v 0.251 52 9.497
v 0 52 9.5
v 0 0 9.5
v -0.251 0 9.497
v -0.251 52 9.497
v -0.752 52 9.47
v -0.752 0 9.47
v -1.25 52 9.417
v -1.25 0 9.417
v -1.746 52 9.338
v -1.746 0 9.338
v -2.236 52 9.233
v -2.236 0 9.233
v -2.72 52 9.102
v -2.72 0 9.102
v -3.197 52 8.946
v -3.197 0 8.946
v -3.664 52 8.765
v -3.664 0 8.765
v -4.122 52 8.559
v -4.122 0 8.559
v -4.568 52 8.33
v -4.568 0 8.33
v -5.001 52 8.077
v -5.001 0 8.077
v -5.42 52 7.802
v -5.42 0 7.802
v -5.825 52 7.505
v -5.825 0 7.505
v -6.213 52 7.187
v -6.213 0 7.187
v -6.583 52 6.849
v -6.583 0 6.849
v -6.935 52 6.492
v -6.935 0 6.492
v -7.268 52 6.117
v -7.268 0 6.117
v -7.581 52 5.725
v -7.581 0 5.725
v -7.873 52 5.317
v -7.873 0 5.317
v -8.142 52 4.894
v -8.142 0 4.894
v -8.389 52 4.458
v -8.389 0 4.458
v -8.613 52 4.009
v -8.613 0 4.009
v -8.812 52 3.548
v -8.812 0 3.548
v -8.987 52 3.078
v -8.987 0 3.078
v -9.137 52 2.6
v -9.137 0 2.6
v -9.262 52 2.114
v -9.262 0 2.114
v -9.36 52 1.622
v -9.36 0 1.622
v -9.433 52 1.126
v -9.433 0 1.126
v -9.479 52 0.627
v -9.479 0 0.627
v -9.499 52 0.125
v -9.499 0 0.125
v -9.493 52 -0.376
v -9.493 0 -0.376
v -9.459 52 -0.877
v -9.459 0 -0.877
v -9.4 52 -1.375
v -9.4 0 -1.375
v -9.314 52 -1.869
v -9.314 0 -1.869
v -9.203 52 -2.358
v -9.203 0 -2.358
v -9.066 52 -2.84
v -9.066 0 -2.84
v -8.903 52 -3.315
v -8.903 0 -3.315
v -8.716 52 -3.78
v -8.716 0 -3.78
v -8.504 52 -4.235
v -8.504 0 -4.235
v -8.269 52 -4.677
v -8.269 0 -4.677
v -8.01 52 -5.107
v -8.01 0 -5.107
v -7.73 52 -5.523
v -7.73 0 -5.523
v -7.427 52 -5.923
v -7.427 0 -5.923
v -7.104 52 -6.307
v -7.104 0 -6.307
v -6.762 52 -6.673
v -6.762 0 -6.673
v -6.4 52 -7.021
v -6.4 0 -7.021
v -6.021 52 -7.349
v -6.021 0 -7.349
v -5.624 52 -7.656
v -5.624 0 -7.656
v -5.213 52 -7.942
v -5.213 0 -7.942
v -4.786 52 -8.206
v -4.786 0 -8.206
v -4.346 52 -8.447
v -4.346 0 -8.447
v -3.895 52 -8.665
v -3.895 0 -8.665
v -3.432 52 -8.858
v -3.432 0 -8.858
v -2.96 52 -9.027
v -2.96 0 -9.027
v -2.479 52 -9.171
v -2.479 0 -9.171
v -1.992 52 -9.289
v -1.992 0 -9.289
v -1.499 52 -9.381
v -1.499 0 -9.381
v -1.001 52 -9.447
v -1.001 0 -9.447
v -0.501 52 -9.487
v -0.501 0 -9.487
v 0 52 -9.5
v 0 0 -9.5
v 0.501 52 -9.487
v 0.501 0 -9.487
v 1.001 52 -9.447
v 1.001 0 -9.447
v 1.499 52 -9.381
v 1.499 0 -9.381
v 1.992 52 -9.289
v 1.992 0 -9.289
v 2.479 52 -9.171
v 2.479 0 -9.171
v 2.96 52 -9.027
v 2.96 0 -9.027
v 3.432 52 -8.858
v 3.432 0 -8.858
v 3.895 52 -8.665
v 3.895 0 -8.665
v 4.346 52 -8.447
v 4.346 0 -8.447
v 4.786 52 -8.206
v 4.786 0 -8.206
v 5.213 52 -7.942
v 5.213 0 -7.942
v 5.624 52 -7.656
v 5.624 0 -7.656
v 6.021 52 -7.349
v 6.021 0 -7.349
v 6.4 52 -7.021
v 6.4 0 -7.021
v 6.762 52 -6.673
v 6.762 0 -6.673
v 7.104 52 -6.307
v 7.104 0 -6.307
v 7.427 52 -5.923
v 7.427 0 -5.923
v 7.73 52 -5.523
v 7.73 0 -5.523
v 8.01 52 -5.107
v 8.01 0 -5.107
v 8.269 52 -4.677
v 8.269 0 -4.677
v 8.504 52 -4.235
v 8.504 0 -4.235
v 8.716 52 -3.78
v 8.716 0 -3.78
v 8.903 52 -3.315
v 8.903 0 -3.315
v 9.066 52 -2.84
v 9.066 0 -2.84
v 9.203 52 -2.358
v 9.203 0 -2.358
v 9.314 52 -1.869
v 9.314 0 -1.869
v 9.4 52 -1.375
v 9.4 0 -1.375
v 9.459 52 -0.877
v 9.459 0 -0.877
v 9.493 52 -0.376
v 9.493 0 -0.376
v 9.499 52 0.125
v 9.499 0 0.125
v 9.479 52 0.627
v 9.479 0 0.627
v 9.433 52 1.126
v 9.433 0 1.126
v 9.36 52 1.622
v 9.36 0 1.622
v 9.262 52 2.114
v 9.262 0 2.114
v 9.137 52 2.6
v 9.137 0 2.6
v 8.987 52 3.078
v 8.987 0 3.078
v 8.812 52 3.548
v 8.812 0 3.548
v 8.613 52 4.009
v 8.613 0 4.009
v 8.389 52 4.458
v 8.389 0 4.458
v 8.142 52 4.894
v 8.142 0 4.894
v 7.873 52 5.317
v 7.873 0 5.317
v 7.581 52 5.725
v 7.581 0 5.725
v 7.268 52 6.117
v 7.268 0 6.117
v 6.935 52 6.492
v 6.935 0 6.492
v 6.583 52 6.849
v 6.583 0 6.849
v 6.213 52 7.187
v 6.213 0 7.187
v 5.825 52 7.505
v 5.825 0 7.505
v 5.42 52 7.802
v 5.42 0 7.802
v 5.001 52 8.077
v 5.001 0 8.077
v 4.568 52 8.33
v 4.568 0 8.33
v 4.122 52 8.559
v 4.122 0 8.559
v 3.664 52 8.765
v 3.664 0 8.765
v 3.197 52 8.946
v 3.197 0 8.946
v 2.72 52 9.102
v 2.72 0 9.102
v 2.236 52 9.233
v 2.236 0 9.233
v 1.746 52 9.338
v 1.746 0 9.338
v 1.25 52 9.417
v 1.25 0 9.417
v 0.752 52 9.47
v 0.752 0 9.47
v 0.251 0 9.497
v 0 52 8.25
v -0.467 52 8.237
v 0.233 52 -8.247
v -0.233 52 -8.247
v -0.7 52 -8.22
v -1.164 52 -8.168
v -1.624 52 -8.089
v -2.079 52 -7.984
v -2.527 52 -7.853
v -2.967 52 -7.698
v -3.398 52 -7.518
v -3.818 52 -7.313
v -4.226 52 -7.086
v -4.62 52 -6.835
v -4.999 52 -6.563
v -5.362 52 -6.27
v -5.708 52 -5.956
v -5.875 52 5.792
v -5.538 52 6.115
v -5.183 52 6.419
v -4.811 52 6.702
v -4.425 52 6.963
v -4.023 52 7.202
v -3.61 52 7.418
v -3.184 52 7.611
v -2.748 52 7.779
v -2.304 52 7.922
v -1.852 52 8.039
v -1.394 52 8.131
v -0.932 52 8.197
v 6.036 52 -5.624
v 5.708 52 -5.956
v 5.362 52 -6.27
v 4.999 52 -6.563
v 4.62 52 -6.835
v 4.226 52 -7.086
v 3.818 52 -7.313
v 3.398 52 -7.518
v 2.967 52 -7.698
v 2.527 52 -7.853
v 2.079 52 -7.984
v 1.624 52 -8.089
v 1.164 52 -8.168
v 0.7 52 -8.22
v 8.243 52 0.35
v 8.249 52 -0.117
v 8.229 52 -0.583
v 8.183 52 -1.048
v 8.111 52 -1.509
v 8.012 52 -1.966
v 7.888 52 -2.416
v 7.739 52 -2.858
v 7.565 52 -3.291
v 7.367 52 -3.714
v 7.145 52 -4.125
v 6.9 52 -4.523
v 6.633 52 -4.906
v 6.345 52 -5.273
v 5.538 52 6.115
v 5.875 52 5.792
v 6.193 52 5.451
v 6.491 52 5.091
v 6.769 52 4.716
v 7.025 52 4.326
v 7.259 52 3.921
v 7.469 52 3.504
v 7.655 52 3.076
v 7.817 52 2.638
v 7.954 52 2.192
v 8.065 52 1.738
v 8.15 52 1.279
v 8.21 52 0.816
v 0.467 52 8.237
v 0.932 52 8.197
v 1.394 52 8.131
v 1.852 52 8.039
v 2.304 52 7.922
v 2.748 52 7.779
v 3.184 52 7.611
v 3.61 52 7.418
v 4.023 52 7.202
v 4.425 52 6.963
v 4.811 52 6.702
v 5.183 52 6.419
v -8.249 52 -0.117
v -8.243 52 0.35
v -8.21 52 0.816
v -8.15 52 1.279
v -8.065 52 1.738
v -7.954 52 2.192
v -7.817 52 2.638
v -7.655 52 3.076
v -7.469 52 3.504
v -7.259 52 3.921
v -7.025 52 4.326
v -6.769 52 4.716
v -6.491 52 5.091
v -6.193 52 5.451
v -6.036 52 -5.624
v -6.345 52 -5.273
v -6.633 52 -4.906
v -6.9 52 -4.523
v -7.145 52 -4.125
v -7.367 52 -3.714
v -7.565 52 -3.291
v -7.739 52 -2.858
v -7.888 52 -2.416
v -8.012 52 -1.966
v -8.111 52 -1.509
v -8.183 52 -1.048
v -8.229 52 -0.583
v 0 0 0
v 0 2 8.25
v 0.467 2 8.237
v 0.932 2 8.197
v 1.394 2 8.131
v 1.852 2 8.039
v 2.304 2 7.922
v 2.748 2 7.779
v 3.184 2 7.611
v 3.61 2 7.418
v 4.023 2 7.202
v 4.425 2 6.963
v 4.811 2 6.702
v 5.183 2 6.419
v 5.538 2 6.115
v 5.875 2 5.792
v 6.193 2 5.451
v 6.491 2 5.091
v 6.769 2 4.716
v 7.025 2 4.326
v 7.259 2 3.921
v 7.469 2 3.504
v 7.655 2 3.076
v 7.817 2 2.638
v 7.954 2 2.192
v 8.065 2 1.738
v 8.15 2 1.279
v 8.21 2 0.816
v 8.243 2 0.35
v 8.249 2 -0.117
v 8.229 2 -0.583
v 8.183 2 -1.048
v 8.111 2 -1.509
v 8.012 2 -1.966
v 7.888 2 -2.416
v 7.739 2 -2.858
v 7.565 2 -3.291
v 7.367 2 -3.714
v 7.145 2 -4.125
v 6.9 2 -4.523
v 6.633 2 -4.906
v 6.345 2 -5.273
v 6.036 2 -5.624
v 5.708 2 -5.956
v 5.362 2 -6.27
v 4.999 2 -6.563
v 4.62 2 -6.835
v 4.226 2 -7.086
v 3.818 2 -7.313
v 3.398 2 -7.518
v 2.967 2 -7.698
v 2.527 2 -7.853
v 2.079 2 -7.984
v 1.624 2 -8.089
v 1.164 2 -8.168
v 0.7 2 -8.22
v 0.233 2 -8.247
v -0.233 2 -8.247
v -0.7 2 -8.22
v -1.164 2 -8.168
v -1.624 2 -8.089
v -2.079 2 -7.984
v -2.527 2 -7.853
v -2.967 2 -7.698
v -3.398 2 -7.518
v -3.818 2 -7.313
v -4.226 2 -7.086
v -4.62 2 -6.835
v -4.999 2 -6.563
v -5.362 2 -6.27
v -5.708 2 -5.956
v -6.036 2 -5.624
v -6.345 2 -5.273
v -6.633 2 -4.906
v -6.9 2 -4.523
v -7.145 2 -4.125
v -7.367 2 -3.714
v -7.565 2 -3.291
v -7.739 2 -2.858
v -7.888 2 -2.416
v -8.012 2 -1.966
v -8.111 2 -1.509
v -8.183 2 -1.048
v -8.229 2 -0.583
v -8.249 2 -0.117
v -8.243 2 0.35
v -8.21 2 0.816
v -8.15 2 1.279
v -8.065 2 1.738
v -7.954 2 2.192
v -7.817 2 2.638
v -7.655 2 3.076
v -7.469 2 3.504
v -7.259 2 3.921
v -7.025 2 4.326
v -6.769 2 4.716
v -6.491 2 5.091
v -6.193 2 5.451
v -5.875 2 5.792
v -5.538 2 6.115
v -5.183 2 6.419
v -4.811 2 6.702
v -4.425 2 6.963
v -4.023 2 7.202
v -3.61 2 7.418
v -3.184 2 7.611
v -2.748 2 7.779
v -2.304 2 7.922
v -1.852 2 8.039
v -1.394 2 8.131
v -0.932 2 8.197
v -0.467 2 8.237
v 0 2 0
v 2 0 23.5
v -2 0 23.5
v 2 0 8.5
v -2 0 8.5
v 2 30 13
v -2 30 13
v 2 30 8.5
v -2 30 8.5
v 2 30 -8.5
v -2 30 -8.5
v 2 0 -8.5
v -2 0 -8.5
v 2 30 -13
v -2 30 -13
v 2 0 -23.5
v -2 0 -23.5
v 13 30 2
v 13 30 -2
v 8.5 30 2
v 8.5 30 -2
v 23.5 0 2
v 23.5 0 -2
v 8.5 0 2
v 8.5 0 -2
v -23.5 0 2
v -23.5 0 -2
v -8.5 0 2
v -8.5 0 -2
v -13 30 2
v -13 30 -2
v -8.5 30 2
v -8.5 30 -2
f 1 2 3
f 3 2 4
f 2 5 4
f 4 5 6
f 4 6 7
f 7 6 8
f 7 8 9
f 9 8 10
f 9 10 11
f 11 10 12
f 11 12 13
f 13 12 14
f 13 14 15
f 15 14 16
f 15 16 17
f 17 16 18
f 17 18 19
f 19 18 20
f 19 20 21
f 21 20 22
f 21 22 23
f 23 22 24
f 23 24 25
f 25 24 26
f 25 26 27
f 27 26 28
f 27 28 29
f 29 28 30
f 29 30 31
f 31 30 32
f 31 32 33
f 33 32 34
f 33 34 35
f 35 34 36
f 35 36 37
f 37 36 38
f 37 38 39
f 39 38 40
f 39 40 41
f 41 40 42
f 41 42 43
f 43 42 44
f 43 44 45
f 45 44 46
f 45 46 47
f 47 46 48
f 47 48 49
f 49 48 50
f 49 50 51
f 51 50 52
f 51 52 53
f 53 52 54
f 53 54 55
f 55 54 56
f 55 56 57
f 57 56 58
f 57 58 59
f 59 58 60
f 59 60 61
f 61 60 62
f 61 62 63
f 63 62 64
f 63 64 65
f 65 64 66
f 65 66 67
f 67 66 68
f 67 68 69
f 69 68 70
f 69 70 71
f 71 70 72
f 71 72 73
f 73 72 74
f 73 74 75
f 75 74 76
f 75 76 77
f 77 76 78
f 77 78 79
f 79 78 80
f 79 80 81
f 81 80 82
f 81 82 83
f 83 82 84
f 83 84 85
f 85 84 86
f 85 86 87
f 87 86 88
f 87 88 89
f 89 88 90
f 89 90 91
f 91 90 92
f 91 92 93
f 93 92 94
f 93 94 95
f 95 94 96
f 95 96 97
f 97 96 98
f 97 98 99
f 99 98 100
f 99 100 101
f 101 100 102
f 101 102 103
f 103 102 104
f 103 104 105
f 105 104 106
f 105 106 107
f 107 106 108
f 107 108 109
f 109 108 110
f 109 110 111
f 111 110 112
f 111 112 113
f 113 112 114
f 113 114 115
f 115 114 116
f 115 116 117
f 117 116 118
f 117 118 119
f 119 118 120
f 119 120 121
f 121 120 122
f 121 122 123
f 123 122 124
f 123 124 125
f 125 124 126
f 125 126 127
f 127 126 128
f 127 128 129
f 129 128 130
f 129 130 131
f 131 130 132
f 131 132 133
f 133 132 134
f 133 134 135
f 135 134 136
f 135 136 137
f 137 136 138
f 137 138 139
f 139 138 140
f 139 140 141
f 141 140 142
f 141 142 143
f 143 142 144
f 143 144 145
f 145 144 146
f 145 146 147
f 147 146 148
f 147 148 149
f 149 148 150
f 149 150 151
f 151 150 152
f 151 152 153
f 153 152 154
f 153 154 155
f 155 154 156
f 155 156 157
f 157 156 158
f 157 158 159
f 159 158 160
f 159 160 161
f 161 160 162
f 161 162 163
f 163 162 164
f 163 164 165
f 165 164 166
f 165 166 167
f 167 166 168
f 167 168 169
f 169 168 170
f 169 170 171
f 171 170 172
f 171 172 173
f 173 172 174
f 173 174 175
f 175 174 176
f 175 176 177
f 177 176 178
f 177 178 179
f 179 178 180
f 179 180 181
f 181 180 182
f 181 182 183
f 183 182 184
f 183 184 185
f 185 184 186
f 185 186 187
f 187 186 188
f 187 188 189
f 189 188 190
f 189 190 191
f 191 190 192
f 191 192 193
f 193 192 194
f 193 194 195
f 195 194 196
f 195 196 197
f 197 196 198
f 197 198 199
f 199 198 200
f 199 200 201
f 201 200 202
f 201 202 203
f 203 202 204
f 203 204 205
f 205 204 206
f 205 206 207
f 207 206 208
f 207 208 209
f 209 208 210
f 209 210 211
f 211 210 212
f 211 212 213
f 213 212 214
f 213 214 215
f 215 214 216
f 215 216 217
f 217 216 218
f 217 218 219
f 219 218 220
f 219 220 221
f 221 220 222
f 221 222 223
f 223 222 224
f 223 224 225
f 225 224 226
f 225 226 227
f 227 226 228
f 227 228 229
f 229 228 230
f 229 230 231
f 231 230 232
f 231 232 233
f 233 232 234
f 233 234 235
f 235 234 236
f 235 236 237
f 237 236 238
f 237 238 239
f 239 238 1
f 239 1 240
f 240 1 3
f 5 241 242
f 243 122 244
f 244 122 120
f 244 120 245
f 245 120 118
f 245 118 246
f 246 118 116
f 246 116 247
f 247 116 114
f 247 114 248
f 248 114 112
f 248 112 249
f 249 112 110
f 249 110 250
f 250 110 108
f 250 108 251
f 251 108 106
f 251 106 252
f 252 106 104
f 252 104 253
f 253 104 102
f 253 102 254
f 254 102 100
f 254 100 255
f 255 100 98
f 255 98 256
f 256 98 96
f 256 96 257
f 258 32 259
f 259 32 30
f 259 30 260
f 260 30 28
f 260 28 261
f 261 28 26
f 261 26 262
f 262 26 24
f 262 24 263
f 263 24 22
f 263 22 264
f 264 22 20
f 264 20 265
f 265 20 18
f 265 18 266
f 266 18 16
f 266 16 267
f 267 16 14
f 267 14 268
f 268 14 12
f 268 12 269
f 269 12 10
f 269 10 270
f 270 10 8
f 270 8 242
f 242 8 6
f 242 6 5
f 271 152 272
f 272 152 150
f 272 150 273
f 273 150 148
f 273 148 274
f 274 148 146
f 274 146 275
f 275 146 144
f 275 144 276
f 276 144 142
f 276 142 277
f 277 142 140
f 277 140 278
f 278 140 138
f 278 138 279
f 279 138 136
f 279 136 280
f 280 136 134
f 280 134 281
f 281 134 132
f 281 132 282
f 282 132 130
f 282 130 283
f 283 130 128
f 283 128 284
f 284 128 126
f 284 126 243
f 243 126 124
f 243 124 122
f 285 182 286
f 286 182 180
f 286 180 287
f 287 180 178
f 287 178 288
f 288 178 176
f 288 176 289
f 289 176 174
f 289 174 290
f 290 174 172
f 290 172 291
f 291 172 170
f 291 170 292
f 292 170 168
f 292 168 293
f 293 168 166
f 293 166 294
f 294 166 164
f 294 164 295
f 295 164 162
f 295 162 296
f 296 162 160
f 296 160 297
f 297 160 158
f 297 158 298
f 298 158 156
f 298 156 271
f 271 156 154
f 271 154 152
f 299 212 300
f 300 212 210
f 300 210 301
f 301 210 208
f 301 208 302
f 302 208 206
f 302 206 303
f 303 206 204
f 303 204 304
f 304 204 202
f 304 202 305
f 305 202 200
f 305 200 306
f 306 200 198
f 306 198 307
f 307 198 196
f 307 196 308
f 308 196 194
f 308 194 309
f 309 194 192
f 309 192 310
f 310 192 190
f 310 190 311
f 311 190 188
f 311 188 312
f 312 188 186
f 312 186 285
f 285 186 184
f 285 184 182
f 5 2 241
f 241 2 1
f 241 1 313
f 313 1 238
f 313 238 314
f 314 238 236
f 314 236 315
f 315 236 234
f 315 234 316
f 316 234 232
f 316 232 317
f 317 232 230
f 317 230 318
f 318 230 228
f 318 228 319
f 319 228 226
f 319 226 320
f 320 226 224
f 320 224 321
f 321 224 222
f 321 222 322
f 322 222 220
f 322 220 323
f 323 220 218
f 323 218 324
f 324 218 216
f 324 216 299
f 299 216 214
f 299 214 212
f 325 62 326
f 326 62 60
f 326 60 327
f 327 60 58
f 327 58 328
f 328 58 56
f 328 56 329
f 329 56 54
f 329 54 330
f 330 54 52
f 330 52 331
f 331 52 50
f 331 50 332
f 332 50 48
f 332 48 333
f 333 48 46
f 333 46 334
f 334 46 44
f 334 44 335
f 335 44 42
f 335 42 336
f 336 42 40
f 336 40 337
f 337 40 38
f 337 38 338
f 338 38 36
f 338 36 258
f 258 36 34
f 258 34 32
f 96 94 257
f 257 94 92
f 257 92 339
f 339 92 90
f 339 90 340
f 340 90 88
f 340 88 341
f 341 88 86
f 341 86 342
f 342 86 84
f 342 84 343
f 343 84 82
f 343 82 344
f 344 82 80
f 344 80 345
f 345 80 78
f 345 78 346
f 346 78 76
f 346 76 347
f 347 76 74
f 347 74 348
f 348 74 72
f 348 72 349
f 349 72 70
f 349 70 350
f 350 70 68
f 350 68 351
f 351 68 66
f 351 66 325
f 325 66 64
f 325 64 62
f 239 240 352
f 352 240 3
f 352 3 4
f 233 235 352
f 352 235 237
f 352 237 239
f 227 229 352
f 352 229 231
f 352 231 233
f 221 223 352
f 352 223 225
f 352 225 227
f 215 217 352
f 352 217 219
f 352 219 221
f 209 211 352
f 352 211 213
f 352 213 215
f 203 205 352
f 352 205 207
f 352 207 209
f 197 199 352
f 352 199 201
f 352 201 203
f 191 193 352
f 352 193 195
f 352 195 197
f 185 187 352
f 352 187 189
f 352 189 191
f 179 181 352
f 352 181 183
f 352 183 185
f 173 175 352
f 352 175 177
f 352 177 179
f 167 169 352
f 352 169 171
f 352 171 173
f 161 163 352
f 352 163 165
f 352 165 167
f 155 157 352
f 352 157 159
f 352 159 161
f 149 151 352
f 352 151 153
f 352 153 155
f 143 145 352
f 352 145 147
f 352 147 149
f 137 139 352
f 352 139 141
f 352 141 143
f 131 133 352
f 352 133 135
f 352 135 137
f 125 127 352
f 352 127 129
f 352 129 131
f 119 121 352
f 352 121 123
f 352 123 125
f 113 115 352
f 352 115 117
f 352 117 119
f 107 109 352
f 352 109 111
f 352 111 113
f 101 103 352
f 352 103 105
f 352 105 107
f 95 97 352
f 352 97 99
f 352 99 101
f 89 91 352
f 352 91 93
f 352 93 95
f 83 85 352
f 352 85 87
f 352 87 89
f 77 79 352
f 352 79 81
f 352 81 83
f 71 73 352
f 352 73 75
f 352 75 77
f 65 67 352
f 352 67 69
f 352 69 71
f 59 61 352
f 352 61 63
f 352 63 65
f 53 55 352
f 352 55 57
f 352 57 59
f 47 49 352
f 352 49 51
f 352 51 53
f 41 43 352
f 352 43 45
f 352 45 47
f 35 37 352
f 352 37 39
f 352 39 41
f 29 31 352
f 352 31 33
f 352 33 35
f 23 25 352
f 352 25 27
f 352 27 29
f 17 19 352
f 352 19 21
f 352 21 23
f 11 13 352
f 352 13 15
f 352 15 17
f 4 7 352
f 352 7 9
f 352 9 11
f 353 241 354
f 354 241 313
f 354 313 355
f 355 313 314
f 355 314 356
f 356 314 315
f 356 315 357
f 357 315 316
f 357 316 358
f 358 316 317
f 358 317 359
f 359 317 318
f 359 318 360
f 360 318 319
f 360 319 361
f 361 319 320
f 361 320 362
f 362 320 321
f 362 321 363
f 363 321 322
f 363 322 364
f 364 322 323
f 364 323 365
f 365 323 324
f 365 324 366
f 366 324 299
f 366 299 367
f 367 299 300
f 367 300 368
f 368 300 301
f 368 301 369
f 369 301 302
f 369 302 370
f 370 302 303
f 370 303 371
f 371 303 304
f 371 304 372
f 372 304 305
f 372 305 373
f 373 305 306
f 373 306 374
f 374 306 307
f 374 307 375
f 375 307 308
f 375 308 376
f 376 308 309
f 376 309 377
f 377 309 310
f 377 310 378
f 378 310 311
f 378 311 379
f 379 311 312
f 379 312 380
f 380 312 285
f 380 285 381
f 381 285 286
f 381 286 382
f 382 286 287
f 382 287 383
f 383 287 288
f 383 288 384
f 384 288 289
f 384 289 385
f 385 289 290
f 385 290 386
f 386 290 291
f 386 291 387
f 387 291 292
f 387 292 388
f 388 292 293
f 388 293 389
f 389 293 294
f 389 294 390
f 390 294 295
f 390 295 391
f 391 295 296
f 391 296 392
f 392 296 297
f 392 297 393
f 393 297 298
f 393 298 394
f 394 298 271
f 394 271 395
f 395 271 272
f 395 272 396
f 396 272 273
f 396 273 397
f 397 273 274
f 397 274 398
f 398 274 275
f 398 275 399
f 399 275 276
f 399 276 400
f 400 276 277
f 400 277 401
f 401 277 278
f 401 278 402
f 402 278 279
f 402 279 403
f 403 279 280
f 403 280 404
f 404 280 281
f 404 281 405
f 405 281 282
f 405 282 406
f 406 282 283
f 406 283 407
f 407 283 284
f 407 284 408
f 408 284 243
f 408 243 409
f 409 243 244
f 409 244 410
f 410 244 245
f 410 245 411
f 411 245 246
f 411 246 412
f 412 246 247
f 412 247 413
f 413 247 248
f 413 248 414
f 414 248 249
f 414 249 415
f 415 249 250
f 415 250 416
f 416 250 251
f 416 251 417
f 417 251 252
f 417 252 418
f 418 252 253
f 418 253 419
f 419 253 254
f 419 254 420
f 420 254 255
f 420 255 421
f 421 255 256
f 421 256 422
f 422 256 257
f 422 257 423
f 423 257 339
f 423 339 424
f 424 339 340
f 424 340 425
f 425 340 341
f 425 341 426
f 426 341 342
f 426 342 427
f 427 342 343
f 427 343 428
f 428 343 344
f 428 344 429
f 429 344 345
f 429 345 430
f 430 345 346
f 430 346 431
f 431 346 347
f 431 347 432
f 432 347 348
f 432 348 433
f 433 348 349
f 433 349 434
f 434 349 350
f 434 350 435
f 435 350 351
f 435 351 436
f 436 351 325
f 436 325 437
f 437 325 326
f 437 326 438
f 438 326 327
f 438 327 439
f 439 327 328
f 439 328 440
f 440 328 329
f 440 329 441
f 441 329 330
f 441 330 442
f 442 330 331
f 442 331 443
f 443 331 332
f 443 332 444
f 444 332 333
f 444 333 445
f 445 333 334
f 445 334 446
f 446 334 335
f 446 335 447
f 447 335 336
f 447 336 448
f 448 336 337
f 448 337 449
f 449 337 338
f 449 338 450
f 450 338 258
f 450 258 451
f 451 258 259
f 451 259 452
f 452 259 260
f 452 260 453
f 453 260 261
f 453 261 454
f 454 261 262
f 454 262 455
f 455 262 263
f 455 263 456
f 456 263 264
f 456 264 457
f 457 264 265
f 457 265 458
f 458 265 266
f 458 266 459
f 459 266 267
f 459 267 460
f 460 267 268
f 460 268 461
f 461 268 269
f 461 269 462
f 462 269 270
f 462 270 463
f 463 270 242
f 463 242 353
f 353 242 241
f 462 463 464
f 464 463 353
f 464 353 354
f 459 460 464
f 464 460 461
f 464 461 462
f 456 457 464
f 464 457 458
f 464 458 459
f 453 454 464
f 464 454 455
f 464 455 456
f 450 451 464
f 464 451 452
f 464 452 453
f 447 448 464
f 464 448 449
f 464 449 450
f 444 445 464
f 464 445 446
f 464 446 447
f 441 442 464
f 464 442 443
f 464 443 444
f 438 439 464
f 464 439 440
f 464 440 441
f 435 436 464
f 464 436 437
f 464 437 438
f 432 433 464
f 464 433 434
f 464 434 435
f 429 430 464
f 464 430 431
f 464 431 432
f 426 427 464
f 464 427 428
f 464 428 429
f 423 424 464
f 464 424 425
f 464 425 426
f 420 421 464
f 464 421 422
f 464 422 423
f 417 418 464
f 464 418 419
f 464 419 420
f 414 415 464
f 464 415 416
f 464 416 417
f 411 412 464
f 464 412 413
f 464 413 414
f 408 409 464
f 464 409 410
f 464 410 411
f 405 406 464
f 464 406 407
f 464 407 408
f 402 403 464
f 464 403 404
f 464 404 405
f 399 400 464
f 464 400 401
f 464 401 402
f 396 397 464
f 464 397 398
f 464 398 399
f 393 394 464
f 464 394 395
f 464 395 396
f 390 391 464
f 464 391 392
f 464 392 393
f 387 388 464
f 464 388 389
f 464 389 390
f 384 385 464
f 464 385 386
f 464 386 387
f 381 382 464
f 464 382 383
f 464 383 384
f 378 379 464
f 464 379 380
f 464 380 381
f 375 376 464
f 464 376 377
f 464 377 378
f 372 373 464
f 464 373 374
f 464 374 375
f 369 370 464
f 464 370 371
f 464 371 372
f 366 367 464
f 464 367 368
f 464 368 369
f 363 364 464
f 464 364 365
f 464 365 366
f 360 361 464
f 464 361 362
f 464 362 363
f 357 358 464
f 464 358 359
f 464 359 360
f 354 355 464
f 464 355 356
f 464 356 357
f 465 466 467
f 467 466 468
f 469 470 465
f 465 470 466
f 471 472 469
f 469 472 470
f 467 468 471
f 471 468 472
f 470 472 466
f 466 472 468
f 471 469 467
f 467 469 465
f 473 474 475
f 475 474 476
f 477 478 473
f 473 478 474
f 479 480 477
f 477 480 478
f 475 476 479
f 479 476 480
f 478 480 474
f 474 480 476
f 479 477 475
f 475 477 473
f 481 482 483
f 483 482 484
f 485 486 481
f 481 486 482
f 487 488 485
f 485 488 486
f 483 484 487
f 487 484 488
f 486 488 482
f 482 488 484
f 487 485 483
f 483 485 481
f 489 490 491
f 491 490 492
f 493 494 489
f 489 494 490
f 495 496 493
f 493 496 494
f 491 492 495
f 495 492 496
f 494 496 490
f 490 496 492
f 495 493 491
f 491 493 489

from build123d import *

# Parameters (mm, degrees)
SKETCH1_R                  = 9.5
BOSS_EXTRUDE1_DEPTH        = 52
SKETCH2_R                  = 8.25
CUT_EXTRUDE1_DEPTH         = 50
BOSS_EXTRUDE2_DEPTH        = 2
BOSS_EXTRUDE2_DEPTH_BACK   = 2
BOSS_EXTRUDE2_2_DEPTH      = 2
BOSS_EXTRUDE2_2_DEPTH_BACK = 2
BOSS_EXTRUDE3_DEPTH        = 2
BOSS_EXTRUDE3_DEPTH_BACK   = 2
BOSS_EXTRUDE3_2_DEPTH      = 2
BOSS_EXTRUDE3_2_DEPTH_BACK = 2


with BuildPart() as part:
    # Sketch1 → Boss-Extrude1 (new body)
    with BuildSketch(Plane(origin=(0, 0, 0), x_dir=(1, 0, 0), z_dir=(0, 1, 0))):
        Circle(SKETCH1_R)
    extrude(amount=BOSS_EXTRUDE1_DEPTH)

    # Sketch2 → Cut-Extrude1 (cut)
    with BuildSketch(Plane(origin=(0, 52, 0), x_dir=(1, 0, 0), z_dir=(0, 1, 0))):
        Circle(SKETCH2_R)
    extrude(amount=-CUT_EXTRUDE1_DEPTH, mode=Mode.SUBTRACT)


with BuildPart() as body_2:
    # Sketch3 → Boss-Extrude2 (new, two sides: drawn at the far end of the back side and taken through both)
    with BuildSketch(Plane(origin=(0, 0, 0), x_dir=(0, 0, -1), z_dir=(1, 0, 0)).offset(-BOSS_EXTRUDE2_DEPTH_BACK)):
        Polygon((-13, 30), (-23.5, 0), (-8.5, 0), (-8.5, 30), align=None)
    extrude(amount=BOSS_EXTRUDE2_DEPTH + BOSS_EXTRUDE2_DEPTH_BACK)


with BuildPart() as body_3:
    # Sketch3 → Boss-Extrude2 2 (new, two sides: drawn at the far end of the back side and taken through both)
    with BuildSketch(Plane(origin=(0, 0, 0), x_dir=(0, 0, -1), z_dir=(1, 0, 0)).offset(-BOSS_EXTRUDE2_2_DEPTH_BACK)):
        Polygon((23.5, 0), (13, 30), (8.5, 30), (8.5, 0), align=None)
    extrude(amount=BOSS_EXTRUDE2_2_DEPTH + BOSS_EXTRUDE2_2_DEPTH_BACK)


with BuildPart() as body_4:
    # Sketch4 → Boss-Extrude3 (new, two sides: drawn at the far end of the back side and taken through both)
    with BuildSketch(Plane.XY.offset(-BOSS_EXTRUDE3_DEPTH_BACK)):
        Polygon((13, 30), (23.5, 0), (8.5, 0), (8.5, 30), align=None)
    extrude(amount=BOSS_EXTRUDE3_DEPTH + BOSS_EXTRUDE3_DEPTH_BACK)


with BuildPart() as body_5:
    # Sketch4 → Boss-Extrude3 2 (new, two sides: drawn at the far end of the back side and taken through both)
    with BuildSketch(Plane.XY.offset(-BOSS_EXTRUDE3_2_DEPTH_BACK)):
        Polygon((-23.5, 0), (-13, 30), (-8.5, 30), (-8.5, 0), align=None)
    extrude(amount=BOSS_EXTRUDE3_2_DEPTH + BOSS_EXTRUDE3_2_DEPTH_BACK)


solid = Compound([part.part, body_2.part, body_3.part, body_4.part, body_5.part])
